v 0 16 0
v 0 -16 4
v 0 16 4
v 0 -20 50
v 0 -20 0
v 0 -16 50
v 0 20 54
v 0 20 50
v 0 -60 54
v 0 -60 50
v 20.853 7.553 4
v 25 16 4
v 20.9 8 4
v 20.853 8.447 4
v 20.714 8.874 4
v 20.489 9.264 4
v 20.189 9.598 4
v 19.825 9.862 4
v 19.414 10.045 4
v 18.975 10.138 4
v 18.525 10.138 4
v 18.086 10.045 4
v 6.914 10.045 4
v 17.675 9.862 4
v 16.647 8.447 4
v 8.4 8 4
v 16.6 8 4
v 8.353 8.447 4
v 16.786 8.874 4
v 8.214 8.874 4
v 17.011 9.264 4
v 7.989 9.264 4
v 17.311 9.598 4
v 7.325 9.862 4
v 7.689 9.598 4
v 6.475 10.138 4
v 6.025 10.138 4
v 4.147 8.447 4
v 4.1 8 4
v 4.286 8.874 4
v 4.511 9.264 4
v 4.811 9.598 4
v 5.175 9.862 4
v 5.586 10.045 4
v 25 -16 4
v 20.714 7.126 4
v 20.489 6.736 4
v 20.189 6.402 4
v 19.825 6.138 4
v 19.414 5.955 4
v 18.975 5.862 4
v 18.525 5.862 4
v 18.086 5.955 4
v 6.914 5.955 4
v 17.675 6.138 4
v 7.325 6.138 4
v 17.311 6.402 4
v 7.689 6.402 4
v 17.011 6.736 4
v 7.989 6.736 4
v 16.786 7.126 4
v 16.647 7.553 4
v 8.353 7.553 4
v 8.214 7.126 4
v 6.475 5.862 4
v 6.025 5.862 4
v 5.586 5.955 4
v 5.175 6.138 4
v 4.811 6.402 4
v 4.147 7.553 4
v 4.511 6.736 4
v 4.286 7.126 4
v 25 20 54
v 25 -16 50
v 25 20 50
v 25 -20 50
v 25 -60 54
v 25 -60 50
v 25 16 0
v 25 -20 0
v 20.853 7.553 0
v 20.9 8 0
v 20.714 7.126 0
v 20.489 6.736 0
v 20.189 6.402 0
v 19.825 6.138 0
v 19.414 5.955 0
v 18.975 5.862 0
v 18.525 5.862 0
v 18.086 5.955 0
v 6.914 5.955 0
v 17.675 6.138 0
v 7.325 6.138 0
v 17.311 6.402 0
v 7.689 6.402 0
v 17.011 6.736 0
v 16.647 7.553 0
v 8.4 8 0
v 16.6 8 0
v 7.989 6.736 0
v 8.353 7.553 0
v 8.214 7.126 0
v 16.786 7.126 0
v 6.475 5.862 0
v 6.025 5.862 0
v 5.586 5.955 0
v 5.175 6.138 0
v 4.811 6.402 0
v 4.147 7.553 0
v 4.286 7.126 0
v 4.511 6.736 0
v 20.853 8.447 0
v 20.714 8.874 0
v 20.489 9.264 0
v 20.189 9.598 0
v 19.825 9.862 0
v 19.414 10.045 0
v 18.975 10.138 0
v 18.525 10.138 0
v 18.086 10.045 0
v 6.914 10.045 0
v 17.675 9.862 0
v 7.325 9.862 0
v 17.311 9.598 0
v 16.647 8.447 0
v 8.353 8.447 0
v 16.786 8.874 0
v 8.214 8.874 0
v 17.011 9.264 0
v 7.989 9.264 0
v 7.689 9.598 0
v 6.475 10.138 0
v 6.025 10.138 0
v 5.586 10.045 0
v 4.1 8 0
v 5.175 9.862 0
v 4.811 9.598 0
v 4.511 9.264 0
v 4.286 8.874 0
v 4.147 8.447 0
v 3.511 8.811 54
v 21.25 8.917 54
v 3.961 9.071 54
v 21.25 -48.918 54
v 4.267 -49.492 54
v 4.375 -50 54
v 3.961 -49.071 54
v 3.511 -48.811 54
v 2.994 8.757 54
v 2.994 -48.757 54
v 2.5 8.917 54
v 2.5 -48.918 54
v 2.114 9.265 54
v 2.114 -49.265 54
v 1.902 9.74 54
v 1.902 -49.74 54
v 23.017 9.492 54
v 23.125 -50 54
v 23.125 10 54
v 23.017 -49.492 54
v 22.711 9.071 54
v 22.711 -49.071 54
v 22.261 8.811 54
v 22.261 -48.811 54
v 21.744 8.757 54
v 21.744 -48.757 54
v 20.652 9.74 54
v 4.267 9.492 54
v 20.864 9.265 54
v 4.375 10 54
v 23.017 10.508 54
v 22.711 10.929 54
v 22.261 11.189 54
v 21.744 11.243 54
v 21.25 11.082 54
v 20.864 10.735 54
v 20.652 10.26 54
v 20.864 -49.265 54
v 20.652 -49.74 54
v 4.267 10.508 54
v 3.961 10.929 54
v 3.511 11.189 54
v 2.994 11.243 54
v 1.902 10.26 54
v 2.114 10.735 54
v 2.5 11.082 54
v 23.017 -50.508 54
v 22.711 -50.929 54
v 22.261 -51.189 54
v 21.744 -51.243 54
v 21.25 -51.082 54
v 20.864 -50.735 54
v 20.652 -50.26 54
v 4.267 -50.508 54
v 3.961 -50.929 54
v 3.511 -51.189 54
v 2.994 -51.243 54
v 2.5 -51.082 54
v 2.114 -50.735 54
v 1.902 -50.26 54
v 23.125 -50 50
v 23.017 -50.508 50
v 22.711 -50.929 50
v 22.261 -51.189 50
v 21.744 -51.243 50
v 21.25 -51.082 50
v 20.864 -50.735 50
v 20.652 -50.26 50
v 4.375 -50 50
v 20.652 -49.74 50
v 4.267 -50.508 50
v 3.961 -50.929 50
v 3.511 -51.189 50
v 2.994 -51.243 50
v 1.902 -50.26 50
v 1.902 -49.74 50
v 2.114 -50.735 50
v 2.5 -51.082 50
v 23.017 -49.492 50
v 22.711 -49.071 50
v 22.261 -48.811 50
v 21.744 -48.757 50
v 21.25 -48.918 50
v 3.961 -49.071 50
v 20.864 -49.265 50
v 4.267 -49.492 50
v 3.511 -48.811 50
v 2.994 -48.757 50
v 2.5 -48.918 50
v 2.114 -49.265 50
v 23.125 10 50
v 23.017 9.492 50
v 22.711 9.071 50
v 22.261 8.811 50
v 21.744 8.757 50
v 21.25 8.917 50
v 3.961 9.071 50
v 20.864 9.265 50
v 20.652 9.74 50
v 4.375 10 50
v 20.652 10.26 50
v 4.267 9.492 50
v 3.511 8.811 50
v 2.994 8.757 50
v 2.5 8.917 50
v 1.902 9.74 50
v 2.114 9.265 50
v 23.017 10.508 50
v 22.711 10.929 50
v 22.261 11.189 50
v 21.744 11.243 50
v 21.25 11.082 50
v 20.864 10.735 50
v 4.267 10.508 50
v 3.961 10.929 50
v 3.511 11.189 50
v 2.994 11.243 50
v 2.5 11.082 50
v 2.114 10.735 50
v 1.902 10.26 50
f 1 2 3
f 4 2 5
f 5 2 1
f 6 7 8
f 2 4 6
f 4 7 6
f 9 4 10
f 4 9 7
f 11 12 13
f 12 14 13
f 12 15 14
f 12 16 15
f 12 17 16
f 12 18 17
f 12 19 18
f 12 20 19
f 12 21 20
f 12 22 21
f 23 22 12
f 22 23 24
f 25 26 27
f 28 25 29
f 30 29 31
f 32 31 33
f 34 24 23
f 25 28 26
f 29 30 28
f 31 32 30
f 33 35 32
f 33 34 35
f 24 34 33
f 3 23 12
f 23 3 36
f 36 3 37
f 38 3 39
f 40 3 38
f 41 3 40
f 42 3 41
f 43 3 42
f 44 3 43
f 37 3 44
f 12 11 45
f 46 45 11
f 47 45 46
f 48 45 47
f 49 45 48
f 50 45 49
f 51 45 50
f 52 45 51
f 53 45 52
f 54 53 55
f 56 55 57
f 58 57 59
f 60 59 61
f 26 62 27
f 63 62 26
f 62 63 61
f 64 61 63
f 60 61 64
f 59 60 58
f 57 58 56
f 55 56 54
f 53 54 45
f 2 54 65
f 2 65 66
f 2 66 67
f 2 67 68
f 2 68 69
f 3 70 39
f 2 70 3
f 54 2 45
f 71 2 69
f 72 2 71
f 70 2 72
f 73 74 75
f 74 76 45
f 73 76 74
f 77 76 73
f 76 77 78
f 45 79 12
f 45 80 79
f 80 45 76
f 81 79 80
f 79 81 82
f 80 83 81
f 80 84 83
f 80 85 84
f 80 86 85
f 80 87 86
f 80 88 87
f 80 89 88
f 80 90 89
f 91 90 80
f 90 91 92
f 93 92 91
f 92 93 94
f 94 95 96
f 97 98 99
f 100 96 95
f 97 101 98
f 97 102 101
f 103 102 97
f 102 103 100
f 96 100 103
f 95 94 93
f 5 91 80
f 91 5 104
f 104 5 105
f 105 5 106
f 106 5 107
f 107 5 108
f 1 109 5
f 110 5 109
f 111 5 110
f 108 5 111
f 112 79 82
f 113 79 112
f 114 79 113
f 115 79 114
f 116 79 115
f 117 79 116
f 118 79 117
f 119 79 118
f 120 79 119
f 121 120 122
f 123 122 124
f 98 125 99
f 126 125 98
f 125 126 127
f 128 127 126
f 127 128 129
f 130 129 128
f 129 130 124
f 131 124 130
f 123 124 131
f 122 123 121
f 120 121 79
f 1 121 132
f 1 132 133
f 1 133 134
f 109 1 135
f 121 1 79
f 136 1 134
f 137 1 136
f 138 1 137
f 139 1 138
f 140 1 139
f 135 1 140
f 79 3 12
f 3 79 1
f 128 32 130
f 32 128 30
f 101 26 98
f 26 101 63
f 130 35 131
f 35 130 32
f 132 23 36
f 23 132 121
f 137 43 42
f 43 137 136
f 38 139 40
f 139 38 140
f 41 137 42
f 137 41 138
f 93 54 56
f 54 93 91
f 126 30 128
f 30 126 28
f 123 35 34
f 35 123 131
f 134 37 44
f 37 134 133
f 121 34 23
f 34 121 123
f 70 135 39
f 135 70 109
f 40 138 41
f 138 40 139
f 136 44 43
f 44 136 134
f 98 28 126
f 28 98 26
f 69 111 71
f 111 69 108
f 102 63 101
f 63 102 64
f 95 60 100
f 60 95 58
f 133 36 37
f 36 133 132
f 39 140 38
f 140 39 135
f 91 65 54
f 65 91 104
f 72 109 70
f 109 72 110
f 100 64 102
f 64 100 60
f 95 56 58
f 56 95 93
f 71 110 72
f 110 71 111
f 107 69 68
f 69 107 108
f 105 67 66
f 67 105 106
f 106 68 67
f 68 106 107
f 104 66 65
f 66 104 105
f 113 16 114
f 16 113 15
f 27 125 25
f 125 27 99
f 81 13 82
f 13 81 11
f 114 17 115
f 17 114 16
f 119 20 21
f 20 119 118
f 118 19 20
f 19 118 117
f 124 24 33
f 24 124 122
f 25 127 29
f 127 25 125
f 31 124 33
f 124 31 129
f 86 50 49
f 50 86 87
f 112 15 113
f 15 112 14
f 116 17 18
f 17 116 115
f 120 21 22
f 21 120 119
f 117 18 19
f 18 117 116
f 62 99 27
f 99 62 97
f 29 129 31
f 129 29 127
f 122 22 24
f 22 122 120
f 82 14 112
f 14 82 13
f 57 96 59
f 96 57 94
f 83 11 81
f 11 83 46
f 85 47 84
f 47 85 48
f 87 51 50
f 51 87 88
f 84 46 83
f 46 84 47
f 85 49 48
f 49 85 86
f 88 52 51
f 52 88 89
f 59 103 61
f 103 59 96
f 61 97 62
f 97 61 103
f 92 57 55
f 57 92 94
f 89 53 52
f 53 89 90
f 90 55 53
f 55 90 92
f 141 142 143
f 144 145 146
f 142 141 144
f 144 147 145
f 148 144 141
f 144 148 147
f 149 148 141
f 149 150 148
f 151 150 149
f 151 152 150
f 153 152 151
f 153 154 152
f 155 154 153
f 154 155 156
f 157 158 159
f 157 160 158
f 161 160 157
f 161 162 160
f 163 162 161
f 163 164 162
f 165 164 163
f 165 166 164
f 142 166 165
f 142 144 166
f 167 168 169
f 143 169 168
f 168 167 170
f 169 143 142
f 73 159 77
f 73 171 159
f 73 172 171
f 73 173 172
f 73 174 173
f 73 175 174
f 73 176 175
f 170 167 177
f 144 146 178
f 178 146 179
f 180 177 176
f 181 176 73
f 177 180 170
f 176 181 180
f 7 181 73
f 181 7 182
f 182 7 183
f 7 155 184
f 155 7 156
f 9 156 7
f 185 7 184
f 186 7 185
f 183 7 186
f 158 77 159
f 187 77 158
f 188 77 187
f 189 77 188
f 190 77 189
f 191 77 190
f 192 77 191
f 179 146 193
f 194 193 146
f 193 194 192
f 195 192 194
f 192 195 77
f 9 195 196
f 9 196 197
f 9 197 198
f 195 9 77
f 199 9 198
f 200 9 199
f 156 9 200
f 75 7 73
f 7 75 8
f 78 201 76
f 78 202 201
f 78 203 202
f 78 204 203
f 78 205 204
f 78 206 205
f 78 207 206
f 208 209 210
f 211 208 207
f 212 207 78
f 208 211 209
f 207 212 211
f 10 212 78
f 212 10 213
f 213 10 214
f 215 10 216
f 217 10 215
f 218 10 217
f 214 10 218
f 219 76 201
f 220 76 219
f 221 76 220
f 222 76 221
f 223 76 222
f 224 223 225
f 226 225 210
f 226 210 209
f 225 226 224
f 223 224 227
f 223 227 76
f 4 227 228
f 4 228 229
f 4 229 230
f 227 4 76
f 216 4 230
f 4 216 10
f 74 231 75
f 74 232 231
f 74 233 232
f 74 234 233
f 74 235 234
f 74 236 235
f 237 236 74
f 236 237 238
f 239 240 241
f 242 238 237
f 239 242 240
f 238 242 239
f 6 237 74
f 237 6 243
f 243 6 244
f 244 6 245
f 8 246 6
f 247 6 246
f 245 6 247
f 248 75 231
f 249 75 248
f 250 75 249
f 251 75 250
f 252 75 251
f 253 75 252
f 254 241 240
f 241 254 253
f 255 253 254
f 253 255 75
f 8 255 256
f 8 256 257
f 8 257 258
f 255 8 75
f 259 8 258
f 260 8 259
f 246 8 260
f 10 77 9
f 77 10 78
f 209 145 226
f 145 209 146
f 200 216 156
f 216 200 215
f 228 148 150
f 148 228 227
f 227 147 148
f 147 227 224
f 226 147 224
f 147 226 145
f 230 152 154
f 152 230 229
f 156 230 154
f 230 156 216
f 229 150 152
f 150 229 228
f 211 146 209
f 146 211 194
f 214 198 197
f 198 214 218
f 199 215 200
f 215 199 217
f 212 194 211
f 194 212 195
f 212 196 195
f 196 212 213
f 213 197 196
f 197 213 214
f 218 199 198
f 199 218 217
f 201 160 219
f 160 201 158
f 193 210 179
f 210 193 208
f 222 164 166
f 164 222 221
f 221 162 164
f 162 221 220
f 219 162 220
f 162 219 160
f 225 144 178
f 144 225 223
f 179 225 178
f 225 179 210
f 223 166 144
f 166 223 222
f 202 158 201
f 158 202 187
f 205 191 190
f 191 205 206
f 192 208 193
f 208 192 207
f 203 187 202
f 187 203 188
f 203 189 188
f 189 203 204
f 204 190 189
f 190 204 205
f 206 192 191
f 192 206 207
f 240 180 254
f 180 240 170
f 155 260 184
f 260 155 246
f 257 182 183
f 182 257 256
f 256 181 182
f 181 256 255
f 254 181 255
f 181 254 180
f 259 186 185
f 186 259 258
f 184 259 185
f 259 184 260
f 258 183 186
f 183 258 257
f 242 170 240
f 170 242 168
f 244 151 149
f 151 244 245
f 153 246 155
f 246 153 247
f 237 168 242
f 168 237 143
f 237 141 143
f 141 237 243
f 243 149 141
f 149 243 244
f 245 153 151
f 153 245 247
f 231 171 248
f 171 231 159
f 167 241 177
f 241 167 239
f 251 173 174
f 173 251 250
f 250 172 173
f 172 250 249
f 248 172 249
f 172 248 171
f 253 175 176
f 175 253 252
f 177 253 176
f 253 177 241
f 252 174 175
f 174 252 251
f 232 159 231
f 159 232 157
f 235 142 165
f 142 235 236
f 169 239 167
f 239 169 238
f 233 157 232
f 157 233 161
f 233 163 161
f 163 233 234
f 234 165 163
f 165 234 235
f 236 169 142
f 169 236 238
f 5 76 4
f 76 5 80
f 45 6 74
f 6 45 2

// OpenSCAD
WallThickness = 4;

BaseWidth = 25;
BaseDepth = 16;
BaseHoleDiameter = 4.3;

Arm1Length = 20;
Arm1Width = 25;

Arm2Length = 50;
Arm2Width = 25;

PlatformLength = 80;
PlatformWidth = 25;

ZiptieHoleDiameter = 2.5;


difference() {
    cube(size=[BaseWidth, BaseDepth, WallThickness], center=false);

    translate([BaseWidth/4, BaseDepth/2, 0])
    cylinder(h=WallThickness, d=BaseHoleDiameter, center=false, $fn=30);

    translate([BaseWidth/4*3, BaseDepth/2, 0])
    cylinder(h=WallThickness, d=BaseHoleDiameter, center=false, $fn=30);
}

translate([BaseWidth/2-Arm1Width/2, -Arm1Length, 0])
cube(size=[Arm1Width, Arm1Length, WallThickness], center=false);

translate([BaseWidth/2-Arm2Width/2, -Arm1Length, 0])
cube(size=[Arm1Width, WallThickness, Arm2Length], center=false);

translate([BaseWidth/2-PlatformWidth/2, -Arm1Length-PlatformLength/2, Arm2Length])
difference() {
    cube(size=[PlatformWidth, PlatformLength, WallThickness], center=false);

    translate([PlatformWidth/8, PlatformLength/8, 0])
    cylinder(h=WallThickness, d=ZiptieHoleDiameter, center=false, $fn=15);
    translate([PlatformWidth/8*7, PlatformLength/8, 0])
    cylinder(h=WallThickness, d=ZiptieHoleDiameter, center=false, $fn=15);
    translate([PlatformWidth/8, PlatformLength/8*7, 0])
    cylinder(h=WallThickness, d=ZiptieHoleDiameter, center=false, $fn=15);
    translate([PlatformWidth/8*7, PlatformLength/8*7, 0])
    cylinder(h=WallThickness, d=ZiptieHoleDiameter, center=false, $fn=15);
}
